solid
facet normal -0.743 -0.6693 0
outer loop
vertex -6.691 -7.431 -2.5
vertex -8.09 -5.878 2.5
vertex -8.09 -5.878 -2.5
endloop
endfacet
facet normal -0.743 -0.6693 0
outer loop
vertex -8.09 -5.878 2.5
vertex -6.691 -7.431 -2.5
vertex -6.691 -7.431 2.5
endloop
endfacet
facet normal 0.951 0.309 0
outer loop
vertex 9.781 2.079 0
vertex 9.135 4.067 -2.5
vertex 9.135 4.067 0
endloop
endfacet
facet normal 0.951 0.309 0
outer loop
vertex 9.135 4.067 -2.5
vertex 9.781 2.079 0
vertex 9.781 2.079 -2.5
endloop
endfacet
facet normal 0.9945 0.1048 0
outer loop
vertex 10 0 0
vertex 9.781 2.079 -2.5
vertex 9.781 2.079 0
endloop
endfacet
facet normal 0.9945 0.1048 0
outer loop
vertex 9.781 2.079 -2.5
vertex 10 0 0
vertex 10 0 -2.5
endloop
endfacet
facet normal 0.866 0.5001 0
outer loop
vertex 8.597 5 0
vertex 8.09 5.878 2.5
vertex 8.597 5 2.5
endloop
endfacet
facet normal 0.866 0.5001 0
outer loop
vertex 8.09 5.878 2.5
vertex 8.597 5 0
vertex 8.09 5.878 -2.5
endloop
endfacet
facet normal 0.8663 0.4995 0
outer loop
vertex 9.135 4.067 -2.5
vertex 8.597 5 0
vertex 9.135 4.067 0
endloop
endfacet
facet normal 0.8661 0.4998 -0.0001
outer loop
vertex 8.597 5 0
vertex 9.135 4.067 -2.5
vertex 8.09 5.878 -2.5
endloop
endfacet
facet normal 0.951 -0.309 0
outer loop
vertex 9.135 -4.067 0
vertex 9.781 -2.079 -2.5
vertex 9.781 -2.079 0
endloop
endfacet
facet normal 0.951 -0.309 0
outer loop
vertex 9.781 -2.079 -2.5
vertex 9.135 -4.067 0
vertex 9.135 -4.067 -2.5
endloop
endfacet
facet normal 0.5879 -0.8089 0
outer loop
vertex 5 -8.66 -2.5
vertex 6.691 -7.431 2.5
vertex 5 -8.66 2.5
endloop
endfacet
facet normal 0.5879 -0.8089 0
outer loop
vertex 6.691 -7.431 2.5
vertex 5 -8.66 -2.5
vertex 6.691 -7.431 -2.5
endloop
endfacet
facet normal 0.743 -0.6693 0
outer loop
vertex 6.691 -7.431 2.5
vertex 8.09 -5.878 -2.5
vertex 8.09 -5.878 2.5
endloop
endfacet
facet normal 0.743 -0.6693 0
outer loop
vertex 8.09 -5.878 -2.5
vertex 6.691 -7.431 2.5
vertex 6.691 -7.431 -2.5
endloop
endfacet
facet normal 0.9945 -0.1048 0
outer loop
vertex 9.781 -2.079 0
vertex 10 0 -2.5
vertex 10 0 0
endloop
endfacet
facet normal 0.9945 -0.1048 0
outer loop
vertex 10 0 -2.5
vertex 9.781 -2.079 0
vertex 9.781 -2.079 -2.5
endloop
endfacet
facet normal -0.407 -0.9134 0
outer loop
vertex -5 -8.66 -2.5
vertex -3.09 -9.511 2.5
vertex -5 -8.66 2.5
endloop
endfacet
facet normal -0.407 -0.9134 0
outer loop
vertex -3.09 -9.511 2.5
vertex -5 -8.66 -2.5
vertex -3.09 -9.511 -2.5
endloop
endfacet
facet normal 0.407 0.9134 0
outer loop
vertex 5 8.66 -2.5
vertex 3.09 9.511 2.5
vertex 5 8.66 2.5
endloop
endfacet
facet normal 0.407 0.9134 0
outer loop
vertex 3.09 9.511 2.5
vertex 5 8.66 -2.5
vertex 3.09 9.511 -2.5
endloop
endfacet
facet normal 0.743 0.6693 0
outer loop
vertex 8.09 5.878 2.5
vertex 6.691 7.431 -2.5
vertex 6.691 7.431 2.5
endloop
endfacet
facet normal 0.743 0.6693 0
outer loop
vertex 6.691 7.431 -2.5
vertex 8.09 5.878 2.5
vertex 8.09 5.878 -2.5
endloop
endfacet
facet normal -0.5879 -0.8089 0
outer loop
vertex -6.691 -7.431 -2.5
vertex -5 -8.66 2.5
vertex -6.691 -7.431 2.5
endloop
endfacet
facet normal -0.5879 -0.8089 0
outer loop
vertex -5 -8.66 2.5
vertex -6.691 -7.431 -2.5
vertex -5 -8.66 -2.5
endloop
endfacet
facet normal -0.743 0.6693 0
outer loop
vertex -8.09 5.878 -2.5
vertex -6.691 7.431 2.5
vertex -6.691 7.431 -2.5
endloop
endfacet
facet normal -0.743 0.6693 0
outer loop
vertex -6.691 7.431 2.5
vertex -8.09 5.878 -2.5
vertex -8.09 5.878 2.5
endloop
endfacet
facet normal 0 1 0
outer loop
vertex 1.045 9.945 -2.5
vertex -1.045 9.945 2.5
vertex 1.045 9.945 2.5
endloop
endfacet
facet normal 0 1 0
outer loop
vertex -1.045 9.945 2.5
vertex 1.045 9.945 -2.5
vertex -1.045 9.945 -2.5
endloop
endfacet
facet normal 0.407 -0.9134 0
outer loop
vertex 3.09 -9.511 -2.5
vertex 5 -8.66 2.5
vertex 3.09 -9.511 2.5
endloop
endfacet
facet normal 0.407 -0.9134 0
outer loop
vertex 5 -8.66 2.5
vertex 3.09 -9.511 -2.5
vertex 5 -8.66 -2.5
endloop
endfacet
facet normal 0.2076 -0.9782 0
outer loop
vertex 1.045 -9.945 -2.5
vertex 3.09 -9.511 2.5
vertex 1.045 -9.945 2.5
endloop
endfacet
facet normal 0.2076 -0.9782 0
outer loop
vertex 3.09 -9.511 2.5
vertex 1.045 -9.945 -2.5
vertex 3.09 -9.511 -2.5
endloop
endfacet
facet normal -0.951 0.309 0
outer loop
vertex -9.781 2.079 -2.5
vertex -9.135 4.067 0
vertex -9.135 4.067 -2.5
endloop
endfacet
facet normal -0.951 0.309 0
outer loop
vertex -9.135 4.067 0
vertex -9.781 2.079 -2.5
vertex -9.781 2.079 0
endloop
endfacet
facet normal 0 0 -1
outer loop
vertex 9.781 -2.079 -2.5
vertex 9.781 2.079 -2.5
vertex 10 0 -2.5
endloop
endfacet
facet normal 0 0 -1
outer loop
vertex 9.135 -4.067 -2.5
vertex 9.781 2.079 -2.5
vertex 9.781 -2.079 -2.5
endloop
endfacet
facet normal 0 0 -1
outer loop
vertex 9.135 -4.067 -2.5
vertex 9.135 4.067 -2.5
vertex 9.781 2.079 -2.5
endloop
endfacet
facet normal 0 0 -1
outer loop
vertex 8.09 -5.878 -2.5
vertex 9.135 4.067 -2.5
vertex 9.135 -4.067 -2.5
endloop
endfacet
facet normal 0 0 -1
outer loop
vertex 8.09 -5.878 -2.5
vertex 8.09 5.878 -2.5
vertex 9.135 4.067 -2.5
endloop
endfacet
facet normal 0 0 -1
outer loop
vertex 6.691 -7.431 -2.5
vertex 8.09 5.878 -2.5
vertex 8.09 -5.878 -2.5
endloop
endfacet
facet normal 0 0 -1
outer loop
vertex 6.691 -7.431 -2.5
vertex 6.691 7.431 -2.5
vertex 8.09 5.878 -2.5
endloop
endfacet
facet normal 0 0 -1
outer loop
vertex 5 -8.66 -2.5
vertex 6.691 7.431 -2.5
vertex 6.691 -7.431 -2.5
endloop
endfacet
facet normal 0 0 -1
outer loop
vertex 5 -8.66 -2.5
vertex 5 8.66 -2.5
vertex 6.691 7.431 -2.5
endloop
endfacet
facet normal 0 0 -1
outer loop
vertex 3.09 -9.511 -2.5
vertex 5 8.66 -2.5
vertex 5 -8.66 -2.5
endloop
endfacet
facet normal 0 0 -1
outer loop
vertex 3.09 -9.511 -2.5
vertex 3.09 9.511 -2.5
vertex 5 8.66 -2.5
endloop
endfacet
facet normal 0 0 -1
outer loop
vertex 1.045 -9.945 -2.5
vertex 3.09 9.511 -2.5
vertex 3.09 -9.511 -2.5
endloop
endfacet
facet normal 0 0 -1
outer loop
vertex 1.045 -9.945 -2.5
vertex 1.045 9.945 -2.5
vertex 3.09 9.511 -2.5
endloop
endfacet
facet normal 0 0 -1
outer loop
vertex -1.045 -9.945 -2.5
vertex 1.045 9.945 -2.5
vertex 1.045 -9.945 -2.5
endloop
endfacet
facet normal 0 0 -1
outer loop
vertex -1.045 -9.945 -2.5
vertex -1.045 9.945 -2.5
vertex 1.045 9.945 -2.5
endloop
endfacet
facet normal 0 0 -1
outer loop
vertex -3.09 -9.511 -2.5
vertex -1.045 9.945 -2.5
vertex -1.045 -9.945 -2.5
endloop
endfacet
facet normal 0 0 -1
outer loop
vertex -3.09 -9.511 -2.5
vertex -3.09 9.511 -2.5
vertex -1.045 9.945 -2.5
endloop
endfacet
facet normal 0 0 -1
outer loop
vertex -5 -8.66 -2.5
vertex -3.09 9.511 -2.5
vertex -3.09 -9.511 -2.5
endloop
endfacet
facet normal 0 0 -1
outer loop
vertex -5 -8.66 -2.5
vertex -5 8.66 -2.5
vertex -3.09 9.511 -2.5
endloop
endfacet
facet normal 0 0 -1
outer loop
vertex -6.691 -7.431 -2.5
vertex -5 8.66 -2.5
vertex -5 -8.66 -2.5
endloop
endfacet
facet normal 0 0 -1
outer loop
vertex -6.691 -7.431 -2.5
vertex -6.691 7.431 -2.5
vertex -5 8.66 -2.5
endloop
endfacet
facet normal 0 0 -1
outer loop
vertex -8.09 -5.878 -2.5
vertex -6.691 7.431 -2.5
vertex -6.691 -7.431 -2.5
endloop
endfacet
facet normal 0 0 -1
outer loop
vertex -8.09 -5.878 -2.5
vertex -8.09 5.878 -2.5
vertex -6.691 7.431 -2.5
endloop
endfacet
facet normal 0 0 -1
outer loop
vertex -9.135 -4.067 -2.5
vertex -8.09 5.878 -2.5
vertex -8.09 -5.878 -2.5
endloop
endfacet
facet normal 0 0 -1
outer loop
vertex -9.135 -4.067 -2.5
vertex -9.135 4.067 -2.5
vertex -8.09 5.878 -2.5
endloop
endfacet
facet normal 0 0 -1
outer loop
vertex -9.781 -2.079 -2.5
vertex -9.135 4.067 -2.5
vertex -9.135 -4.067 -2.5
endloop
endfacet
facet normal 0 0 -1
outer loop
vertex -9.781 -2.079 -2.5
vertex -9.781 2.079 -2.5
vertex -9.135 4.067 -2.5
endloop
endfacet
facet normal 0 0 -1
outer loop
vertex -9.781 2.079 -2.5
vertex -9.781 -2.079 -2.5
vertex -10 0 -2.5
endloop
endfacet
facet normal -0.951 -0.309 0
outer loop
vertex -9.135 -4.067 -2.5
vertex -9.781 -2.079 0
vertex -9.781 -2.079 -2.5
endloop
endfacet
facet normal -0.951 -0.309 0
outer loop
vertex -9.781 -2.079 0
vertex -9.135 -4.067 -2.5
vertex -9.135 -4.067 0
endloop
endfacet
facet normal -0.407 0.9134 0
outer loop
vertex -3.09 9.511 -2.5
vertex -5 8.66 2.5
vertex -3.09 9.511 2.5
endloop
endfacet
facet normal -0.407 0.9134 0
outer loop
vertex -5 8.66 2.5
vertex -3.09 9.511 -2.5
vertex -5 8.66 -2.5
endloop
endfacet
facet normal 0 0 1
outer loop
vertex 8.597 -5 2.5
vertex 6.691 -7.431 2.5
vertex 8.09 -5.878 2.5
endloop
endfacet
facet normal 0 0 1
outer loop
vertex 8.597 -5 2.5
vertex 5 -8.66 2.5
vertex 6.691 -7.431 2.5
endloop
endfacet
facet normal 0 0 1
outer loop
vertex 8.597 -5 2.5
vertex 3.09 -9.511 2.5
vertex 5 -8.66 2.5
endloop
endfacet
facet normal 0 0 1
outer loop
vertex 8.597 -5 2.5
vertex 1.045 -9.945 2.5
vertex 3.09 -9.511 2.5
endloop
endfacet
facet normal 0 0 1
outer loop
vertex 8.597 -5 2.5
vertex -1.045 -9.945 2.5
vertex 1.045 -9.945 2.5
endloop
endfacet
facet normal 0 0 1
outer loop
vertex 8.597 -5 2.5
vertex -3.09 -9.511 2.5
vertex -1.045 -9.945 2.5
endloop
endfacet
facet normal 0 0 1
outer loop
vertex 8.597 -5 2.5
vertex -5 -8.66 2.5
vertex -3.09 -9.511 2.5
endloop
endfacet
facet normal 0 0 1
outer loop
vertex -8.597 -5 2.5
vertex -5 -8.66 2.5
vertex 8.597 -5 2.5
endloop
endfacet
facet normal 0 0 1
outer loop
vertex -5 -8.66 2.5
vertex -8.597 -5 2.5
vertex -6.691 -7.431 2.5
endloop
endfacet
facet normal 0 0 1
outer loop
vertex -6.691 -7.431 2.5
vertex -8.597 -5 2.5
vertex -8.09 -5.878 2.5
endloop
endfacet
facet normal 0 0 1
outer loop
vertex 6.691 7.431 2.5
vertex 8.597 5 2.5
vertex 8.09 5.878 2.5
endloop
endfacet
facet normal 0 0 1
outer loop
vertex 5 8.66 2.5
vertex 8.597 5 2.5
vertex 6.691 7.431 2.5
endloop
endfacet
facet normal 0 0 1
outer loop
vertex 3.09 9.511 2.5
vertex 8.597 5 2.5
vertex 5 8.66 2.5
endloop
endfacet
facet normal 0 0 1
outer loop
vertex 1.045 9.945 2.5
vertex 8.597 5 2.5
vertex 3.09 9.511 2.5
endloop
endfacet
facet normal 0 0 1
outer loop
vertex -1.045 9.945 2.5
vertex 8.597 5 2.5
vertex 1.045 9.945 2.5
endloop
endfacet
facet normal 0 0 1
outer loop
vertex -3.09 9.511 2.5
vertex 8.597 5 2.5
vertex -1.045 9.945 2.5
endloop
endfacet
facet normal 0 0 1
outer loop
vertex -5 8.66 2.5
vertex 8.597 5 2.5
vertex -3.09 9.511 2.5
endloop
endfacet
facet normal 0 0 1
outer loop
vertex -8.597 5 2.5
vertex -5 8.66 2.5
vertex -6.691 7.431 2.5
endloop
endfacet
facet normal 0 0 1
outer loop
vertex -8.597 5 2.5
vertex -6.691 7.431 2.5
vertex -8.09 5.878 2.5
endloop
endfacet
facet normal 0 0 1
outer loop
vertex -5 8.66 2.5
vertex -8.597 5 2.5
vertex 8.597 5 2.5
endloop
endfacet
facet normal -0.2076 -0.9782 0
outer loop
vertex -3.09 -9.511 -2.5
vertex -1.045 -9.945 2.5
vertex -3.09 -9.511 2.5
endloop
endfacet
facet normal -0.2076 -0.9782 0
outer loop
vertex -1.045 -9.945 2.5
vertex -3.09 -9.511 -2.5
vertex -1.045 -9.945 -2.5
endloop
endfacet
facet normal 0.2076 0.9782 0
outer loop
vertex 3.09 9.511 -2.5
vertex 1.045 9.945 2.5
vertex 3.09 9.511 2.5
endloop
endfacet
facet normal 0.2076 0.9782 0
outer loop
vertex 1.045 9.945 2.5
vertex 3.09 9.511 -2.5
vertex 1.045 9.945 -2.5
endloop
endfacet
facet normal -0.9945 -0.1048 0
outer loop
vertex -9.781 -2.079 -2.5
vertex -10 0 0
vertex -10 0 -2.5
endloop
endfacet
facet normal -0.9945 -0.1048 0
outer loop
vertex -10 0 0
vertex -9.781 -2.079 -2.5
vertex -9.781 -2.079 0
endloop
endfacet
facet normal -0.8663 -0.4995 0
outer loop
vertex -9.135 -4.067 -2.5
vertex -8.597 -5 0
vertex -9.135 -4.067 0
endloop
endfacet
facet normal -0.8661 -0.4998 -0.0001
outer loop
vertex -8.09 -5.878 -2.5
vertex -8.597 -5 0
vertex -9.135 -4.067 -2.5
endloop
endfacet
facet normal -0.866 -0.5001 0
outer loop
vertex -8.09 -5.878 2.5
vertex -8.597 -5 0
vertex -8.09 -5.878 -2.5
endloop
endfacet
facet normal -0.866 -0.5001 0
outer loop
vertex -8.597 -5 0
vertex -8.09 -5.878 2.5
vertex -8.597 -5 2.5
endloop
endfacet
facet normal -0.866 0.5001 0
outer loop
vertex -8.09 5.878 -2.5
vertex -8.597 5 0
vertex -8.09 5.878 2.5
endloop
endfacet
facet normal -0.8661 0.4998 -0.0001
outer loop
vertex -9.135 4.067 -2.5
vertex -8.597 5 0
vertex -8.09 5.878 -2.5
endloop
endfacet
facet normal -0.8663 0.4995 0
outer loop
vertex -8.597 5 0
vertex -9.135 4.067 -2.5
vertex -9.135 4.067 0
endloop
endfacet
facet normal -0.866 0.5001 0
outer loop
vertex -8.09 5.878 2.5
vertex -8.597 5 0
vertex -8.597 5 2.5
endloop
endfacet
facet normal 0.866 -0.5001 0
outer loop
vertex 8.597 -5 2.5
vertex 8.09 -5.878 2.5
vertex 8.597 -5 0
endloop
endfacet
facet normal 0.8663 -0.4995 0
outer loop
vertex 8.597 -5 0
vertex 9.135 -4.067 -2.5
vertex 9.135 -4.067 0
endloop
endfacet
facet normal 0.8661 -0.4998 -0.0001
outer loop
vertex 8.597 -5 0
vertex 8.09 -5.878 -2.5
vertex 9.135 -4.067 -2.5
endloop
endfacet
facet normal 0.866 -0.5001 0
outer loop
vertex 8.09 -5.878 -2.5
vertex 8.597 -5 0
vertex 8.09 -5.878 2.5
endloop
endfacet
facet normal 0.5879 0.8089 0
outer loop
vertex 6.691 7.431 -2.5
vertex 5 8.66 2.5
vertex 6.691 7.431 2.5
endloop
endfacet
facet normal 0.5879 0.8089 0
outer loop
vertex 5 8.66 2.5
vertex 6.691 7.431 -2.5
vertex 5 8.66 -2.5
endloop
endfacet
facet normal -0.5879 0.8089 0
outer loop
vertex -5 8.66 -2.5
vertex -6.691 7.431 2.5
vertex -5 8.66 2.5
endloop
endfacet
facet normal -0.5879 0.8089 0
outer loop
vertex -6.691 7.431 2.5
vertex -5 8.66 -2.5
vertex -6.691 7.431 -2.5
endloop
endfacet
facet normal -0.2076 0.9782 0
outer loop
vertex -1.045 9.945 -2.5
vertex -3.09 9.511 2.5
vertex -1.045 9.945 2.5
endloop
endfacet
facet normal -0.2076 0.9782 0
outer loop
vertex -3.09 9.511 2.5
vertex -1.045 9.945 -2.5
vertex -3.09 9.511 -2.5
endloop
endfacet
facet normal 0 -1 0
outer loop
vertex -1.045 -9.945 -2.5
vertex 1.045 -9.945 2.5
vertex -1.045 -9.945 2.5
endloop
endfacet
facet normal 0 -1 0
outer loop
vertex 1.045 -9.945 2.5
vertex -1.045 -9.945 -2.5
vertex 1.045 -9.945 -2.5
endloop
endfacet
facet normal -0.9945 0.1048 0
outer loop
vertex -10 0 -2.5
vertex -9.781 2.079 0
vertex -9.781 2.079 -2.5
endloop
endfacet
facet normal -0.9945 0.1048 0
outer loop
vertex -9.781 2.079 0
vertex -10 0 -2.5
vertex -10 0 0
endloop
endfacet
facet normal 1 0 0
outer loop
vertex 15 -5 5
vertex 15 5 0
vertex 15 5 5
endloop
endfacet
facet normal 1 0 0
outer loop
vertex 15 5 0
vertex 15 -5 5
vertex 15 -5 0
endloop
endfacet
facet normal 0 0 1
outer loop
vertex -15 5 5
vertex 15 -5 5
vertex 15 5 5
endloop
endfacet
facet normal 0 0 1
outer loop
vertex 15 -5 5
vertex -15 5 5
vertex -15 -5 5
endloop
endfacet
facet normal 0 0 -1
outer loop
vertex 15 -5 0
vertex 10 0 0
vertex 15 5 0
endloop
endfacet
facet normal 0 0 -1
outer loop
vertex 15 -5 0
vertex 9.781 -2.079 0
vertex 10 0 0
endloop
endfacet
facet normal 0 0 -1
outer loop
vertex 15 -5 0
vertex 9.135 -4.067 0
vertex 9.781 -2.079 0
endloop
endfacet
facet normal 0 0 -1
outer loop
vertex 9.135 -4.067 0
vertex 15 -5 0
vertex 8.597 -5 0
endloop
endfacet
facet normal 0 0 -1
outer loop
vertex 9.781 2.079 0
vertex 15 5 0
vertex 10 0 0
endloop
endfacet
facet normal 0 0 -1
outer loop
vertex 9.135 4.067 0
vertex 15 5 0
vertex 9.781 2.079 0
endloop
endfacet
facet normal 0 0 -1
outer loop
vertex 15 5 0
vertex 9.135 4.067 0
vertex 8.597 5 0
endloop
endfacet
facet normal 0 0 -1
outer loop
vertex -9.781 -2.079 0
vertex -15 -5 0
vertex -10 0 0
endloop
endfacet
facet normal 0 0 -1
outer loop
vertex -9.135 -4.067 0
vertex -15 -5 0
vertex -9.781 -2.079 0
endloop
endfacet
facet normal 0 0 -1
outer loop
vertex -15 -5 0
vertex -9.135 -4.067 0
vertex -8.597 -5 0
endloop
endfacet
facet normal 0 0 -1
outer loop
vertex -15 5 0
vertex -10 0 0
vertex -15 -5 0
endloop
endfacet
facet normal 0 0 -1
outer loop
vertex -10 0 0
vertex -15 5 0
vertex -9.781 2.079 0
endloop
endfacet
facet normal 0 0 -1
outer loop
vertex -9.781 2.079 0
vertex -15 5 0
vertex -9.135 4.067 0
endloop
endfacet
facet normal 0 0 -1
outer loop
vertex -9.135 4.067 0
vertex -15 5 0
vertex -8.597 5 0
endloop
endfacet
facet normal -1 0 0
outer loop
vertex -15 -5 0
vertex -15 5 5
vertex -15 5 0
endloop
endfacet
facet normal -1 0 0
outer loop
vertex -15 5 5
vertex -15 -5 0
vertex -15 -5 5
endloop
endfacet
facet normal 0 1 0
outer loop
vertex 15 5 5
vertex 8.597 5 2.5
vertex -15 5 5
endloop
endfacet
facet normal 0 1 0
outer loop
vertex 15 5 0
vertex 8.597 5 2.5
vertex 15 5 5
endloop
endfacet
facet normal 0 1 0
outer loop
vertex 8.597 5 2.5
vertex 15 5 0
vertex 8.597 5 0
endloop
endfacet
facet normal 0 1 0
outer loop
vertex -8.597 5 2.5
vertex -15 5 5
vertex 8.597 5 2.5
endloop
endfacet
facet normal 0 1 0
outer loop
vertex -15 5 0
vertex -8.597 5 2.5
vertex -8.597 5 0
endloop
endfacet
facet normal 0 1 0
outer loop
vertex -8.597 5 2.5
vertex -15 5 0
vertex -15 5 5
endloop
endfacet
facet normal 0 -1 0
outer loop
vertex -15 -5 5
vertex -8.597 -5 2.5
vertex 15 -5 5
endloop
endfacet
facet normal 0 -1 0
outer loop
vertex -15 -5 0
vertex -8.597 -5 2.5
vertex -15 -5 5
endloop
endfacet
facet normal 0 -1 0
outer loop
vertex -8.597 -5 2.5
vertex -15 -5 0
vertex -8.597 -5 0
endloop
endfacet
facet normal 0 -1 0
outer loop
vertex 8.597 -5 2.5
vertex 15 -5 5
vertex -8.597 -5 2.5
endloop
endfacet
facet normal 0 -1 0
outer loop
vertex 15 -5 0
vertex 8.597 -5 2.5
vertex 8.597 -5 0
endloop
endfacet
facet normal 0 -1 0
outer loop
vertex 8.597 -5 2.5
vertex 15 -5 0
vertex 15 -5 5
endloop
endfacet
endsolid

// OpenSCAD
// Parameters for the key-shaped flat piece
key_thickness = 5; // Thickness of the piece
circle_diameter = 20; // Diameter of the circular head
rect_length = 30; // Length of the rectangular tail
rect_width = 10; // Width of the rectangular tail

module key_shaped_flat_piece() {
    // Circular head
    translate([0, 0, 0])
    cylinder(h = key_thickness, r = circle_diameter / 2, center = true);

    // Rectangular tail
    translate([-rect_length / 2, -rect_width / 2, 0])
    cube([rect_length, rect_width, key_thickness], center = false);
}

// Generate the model
key_shaped_flat_piece();
